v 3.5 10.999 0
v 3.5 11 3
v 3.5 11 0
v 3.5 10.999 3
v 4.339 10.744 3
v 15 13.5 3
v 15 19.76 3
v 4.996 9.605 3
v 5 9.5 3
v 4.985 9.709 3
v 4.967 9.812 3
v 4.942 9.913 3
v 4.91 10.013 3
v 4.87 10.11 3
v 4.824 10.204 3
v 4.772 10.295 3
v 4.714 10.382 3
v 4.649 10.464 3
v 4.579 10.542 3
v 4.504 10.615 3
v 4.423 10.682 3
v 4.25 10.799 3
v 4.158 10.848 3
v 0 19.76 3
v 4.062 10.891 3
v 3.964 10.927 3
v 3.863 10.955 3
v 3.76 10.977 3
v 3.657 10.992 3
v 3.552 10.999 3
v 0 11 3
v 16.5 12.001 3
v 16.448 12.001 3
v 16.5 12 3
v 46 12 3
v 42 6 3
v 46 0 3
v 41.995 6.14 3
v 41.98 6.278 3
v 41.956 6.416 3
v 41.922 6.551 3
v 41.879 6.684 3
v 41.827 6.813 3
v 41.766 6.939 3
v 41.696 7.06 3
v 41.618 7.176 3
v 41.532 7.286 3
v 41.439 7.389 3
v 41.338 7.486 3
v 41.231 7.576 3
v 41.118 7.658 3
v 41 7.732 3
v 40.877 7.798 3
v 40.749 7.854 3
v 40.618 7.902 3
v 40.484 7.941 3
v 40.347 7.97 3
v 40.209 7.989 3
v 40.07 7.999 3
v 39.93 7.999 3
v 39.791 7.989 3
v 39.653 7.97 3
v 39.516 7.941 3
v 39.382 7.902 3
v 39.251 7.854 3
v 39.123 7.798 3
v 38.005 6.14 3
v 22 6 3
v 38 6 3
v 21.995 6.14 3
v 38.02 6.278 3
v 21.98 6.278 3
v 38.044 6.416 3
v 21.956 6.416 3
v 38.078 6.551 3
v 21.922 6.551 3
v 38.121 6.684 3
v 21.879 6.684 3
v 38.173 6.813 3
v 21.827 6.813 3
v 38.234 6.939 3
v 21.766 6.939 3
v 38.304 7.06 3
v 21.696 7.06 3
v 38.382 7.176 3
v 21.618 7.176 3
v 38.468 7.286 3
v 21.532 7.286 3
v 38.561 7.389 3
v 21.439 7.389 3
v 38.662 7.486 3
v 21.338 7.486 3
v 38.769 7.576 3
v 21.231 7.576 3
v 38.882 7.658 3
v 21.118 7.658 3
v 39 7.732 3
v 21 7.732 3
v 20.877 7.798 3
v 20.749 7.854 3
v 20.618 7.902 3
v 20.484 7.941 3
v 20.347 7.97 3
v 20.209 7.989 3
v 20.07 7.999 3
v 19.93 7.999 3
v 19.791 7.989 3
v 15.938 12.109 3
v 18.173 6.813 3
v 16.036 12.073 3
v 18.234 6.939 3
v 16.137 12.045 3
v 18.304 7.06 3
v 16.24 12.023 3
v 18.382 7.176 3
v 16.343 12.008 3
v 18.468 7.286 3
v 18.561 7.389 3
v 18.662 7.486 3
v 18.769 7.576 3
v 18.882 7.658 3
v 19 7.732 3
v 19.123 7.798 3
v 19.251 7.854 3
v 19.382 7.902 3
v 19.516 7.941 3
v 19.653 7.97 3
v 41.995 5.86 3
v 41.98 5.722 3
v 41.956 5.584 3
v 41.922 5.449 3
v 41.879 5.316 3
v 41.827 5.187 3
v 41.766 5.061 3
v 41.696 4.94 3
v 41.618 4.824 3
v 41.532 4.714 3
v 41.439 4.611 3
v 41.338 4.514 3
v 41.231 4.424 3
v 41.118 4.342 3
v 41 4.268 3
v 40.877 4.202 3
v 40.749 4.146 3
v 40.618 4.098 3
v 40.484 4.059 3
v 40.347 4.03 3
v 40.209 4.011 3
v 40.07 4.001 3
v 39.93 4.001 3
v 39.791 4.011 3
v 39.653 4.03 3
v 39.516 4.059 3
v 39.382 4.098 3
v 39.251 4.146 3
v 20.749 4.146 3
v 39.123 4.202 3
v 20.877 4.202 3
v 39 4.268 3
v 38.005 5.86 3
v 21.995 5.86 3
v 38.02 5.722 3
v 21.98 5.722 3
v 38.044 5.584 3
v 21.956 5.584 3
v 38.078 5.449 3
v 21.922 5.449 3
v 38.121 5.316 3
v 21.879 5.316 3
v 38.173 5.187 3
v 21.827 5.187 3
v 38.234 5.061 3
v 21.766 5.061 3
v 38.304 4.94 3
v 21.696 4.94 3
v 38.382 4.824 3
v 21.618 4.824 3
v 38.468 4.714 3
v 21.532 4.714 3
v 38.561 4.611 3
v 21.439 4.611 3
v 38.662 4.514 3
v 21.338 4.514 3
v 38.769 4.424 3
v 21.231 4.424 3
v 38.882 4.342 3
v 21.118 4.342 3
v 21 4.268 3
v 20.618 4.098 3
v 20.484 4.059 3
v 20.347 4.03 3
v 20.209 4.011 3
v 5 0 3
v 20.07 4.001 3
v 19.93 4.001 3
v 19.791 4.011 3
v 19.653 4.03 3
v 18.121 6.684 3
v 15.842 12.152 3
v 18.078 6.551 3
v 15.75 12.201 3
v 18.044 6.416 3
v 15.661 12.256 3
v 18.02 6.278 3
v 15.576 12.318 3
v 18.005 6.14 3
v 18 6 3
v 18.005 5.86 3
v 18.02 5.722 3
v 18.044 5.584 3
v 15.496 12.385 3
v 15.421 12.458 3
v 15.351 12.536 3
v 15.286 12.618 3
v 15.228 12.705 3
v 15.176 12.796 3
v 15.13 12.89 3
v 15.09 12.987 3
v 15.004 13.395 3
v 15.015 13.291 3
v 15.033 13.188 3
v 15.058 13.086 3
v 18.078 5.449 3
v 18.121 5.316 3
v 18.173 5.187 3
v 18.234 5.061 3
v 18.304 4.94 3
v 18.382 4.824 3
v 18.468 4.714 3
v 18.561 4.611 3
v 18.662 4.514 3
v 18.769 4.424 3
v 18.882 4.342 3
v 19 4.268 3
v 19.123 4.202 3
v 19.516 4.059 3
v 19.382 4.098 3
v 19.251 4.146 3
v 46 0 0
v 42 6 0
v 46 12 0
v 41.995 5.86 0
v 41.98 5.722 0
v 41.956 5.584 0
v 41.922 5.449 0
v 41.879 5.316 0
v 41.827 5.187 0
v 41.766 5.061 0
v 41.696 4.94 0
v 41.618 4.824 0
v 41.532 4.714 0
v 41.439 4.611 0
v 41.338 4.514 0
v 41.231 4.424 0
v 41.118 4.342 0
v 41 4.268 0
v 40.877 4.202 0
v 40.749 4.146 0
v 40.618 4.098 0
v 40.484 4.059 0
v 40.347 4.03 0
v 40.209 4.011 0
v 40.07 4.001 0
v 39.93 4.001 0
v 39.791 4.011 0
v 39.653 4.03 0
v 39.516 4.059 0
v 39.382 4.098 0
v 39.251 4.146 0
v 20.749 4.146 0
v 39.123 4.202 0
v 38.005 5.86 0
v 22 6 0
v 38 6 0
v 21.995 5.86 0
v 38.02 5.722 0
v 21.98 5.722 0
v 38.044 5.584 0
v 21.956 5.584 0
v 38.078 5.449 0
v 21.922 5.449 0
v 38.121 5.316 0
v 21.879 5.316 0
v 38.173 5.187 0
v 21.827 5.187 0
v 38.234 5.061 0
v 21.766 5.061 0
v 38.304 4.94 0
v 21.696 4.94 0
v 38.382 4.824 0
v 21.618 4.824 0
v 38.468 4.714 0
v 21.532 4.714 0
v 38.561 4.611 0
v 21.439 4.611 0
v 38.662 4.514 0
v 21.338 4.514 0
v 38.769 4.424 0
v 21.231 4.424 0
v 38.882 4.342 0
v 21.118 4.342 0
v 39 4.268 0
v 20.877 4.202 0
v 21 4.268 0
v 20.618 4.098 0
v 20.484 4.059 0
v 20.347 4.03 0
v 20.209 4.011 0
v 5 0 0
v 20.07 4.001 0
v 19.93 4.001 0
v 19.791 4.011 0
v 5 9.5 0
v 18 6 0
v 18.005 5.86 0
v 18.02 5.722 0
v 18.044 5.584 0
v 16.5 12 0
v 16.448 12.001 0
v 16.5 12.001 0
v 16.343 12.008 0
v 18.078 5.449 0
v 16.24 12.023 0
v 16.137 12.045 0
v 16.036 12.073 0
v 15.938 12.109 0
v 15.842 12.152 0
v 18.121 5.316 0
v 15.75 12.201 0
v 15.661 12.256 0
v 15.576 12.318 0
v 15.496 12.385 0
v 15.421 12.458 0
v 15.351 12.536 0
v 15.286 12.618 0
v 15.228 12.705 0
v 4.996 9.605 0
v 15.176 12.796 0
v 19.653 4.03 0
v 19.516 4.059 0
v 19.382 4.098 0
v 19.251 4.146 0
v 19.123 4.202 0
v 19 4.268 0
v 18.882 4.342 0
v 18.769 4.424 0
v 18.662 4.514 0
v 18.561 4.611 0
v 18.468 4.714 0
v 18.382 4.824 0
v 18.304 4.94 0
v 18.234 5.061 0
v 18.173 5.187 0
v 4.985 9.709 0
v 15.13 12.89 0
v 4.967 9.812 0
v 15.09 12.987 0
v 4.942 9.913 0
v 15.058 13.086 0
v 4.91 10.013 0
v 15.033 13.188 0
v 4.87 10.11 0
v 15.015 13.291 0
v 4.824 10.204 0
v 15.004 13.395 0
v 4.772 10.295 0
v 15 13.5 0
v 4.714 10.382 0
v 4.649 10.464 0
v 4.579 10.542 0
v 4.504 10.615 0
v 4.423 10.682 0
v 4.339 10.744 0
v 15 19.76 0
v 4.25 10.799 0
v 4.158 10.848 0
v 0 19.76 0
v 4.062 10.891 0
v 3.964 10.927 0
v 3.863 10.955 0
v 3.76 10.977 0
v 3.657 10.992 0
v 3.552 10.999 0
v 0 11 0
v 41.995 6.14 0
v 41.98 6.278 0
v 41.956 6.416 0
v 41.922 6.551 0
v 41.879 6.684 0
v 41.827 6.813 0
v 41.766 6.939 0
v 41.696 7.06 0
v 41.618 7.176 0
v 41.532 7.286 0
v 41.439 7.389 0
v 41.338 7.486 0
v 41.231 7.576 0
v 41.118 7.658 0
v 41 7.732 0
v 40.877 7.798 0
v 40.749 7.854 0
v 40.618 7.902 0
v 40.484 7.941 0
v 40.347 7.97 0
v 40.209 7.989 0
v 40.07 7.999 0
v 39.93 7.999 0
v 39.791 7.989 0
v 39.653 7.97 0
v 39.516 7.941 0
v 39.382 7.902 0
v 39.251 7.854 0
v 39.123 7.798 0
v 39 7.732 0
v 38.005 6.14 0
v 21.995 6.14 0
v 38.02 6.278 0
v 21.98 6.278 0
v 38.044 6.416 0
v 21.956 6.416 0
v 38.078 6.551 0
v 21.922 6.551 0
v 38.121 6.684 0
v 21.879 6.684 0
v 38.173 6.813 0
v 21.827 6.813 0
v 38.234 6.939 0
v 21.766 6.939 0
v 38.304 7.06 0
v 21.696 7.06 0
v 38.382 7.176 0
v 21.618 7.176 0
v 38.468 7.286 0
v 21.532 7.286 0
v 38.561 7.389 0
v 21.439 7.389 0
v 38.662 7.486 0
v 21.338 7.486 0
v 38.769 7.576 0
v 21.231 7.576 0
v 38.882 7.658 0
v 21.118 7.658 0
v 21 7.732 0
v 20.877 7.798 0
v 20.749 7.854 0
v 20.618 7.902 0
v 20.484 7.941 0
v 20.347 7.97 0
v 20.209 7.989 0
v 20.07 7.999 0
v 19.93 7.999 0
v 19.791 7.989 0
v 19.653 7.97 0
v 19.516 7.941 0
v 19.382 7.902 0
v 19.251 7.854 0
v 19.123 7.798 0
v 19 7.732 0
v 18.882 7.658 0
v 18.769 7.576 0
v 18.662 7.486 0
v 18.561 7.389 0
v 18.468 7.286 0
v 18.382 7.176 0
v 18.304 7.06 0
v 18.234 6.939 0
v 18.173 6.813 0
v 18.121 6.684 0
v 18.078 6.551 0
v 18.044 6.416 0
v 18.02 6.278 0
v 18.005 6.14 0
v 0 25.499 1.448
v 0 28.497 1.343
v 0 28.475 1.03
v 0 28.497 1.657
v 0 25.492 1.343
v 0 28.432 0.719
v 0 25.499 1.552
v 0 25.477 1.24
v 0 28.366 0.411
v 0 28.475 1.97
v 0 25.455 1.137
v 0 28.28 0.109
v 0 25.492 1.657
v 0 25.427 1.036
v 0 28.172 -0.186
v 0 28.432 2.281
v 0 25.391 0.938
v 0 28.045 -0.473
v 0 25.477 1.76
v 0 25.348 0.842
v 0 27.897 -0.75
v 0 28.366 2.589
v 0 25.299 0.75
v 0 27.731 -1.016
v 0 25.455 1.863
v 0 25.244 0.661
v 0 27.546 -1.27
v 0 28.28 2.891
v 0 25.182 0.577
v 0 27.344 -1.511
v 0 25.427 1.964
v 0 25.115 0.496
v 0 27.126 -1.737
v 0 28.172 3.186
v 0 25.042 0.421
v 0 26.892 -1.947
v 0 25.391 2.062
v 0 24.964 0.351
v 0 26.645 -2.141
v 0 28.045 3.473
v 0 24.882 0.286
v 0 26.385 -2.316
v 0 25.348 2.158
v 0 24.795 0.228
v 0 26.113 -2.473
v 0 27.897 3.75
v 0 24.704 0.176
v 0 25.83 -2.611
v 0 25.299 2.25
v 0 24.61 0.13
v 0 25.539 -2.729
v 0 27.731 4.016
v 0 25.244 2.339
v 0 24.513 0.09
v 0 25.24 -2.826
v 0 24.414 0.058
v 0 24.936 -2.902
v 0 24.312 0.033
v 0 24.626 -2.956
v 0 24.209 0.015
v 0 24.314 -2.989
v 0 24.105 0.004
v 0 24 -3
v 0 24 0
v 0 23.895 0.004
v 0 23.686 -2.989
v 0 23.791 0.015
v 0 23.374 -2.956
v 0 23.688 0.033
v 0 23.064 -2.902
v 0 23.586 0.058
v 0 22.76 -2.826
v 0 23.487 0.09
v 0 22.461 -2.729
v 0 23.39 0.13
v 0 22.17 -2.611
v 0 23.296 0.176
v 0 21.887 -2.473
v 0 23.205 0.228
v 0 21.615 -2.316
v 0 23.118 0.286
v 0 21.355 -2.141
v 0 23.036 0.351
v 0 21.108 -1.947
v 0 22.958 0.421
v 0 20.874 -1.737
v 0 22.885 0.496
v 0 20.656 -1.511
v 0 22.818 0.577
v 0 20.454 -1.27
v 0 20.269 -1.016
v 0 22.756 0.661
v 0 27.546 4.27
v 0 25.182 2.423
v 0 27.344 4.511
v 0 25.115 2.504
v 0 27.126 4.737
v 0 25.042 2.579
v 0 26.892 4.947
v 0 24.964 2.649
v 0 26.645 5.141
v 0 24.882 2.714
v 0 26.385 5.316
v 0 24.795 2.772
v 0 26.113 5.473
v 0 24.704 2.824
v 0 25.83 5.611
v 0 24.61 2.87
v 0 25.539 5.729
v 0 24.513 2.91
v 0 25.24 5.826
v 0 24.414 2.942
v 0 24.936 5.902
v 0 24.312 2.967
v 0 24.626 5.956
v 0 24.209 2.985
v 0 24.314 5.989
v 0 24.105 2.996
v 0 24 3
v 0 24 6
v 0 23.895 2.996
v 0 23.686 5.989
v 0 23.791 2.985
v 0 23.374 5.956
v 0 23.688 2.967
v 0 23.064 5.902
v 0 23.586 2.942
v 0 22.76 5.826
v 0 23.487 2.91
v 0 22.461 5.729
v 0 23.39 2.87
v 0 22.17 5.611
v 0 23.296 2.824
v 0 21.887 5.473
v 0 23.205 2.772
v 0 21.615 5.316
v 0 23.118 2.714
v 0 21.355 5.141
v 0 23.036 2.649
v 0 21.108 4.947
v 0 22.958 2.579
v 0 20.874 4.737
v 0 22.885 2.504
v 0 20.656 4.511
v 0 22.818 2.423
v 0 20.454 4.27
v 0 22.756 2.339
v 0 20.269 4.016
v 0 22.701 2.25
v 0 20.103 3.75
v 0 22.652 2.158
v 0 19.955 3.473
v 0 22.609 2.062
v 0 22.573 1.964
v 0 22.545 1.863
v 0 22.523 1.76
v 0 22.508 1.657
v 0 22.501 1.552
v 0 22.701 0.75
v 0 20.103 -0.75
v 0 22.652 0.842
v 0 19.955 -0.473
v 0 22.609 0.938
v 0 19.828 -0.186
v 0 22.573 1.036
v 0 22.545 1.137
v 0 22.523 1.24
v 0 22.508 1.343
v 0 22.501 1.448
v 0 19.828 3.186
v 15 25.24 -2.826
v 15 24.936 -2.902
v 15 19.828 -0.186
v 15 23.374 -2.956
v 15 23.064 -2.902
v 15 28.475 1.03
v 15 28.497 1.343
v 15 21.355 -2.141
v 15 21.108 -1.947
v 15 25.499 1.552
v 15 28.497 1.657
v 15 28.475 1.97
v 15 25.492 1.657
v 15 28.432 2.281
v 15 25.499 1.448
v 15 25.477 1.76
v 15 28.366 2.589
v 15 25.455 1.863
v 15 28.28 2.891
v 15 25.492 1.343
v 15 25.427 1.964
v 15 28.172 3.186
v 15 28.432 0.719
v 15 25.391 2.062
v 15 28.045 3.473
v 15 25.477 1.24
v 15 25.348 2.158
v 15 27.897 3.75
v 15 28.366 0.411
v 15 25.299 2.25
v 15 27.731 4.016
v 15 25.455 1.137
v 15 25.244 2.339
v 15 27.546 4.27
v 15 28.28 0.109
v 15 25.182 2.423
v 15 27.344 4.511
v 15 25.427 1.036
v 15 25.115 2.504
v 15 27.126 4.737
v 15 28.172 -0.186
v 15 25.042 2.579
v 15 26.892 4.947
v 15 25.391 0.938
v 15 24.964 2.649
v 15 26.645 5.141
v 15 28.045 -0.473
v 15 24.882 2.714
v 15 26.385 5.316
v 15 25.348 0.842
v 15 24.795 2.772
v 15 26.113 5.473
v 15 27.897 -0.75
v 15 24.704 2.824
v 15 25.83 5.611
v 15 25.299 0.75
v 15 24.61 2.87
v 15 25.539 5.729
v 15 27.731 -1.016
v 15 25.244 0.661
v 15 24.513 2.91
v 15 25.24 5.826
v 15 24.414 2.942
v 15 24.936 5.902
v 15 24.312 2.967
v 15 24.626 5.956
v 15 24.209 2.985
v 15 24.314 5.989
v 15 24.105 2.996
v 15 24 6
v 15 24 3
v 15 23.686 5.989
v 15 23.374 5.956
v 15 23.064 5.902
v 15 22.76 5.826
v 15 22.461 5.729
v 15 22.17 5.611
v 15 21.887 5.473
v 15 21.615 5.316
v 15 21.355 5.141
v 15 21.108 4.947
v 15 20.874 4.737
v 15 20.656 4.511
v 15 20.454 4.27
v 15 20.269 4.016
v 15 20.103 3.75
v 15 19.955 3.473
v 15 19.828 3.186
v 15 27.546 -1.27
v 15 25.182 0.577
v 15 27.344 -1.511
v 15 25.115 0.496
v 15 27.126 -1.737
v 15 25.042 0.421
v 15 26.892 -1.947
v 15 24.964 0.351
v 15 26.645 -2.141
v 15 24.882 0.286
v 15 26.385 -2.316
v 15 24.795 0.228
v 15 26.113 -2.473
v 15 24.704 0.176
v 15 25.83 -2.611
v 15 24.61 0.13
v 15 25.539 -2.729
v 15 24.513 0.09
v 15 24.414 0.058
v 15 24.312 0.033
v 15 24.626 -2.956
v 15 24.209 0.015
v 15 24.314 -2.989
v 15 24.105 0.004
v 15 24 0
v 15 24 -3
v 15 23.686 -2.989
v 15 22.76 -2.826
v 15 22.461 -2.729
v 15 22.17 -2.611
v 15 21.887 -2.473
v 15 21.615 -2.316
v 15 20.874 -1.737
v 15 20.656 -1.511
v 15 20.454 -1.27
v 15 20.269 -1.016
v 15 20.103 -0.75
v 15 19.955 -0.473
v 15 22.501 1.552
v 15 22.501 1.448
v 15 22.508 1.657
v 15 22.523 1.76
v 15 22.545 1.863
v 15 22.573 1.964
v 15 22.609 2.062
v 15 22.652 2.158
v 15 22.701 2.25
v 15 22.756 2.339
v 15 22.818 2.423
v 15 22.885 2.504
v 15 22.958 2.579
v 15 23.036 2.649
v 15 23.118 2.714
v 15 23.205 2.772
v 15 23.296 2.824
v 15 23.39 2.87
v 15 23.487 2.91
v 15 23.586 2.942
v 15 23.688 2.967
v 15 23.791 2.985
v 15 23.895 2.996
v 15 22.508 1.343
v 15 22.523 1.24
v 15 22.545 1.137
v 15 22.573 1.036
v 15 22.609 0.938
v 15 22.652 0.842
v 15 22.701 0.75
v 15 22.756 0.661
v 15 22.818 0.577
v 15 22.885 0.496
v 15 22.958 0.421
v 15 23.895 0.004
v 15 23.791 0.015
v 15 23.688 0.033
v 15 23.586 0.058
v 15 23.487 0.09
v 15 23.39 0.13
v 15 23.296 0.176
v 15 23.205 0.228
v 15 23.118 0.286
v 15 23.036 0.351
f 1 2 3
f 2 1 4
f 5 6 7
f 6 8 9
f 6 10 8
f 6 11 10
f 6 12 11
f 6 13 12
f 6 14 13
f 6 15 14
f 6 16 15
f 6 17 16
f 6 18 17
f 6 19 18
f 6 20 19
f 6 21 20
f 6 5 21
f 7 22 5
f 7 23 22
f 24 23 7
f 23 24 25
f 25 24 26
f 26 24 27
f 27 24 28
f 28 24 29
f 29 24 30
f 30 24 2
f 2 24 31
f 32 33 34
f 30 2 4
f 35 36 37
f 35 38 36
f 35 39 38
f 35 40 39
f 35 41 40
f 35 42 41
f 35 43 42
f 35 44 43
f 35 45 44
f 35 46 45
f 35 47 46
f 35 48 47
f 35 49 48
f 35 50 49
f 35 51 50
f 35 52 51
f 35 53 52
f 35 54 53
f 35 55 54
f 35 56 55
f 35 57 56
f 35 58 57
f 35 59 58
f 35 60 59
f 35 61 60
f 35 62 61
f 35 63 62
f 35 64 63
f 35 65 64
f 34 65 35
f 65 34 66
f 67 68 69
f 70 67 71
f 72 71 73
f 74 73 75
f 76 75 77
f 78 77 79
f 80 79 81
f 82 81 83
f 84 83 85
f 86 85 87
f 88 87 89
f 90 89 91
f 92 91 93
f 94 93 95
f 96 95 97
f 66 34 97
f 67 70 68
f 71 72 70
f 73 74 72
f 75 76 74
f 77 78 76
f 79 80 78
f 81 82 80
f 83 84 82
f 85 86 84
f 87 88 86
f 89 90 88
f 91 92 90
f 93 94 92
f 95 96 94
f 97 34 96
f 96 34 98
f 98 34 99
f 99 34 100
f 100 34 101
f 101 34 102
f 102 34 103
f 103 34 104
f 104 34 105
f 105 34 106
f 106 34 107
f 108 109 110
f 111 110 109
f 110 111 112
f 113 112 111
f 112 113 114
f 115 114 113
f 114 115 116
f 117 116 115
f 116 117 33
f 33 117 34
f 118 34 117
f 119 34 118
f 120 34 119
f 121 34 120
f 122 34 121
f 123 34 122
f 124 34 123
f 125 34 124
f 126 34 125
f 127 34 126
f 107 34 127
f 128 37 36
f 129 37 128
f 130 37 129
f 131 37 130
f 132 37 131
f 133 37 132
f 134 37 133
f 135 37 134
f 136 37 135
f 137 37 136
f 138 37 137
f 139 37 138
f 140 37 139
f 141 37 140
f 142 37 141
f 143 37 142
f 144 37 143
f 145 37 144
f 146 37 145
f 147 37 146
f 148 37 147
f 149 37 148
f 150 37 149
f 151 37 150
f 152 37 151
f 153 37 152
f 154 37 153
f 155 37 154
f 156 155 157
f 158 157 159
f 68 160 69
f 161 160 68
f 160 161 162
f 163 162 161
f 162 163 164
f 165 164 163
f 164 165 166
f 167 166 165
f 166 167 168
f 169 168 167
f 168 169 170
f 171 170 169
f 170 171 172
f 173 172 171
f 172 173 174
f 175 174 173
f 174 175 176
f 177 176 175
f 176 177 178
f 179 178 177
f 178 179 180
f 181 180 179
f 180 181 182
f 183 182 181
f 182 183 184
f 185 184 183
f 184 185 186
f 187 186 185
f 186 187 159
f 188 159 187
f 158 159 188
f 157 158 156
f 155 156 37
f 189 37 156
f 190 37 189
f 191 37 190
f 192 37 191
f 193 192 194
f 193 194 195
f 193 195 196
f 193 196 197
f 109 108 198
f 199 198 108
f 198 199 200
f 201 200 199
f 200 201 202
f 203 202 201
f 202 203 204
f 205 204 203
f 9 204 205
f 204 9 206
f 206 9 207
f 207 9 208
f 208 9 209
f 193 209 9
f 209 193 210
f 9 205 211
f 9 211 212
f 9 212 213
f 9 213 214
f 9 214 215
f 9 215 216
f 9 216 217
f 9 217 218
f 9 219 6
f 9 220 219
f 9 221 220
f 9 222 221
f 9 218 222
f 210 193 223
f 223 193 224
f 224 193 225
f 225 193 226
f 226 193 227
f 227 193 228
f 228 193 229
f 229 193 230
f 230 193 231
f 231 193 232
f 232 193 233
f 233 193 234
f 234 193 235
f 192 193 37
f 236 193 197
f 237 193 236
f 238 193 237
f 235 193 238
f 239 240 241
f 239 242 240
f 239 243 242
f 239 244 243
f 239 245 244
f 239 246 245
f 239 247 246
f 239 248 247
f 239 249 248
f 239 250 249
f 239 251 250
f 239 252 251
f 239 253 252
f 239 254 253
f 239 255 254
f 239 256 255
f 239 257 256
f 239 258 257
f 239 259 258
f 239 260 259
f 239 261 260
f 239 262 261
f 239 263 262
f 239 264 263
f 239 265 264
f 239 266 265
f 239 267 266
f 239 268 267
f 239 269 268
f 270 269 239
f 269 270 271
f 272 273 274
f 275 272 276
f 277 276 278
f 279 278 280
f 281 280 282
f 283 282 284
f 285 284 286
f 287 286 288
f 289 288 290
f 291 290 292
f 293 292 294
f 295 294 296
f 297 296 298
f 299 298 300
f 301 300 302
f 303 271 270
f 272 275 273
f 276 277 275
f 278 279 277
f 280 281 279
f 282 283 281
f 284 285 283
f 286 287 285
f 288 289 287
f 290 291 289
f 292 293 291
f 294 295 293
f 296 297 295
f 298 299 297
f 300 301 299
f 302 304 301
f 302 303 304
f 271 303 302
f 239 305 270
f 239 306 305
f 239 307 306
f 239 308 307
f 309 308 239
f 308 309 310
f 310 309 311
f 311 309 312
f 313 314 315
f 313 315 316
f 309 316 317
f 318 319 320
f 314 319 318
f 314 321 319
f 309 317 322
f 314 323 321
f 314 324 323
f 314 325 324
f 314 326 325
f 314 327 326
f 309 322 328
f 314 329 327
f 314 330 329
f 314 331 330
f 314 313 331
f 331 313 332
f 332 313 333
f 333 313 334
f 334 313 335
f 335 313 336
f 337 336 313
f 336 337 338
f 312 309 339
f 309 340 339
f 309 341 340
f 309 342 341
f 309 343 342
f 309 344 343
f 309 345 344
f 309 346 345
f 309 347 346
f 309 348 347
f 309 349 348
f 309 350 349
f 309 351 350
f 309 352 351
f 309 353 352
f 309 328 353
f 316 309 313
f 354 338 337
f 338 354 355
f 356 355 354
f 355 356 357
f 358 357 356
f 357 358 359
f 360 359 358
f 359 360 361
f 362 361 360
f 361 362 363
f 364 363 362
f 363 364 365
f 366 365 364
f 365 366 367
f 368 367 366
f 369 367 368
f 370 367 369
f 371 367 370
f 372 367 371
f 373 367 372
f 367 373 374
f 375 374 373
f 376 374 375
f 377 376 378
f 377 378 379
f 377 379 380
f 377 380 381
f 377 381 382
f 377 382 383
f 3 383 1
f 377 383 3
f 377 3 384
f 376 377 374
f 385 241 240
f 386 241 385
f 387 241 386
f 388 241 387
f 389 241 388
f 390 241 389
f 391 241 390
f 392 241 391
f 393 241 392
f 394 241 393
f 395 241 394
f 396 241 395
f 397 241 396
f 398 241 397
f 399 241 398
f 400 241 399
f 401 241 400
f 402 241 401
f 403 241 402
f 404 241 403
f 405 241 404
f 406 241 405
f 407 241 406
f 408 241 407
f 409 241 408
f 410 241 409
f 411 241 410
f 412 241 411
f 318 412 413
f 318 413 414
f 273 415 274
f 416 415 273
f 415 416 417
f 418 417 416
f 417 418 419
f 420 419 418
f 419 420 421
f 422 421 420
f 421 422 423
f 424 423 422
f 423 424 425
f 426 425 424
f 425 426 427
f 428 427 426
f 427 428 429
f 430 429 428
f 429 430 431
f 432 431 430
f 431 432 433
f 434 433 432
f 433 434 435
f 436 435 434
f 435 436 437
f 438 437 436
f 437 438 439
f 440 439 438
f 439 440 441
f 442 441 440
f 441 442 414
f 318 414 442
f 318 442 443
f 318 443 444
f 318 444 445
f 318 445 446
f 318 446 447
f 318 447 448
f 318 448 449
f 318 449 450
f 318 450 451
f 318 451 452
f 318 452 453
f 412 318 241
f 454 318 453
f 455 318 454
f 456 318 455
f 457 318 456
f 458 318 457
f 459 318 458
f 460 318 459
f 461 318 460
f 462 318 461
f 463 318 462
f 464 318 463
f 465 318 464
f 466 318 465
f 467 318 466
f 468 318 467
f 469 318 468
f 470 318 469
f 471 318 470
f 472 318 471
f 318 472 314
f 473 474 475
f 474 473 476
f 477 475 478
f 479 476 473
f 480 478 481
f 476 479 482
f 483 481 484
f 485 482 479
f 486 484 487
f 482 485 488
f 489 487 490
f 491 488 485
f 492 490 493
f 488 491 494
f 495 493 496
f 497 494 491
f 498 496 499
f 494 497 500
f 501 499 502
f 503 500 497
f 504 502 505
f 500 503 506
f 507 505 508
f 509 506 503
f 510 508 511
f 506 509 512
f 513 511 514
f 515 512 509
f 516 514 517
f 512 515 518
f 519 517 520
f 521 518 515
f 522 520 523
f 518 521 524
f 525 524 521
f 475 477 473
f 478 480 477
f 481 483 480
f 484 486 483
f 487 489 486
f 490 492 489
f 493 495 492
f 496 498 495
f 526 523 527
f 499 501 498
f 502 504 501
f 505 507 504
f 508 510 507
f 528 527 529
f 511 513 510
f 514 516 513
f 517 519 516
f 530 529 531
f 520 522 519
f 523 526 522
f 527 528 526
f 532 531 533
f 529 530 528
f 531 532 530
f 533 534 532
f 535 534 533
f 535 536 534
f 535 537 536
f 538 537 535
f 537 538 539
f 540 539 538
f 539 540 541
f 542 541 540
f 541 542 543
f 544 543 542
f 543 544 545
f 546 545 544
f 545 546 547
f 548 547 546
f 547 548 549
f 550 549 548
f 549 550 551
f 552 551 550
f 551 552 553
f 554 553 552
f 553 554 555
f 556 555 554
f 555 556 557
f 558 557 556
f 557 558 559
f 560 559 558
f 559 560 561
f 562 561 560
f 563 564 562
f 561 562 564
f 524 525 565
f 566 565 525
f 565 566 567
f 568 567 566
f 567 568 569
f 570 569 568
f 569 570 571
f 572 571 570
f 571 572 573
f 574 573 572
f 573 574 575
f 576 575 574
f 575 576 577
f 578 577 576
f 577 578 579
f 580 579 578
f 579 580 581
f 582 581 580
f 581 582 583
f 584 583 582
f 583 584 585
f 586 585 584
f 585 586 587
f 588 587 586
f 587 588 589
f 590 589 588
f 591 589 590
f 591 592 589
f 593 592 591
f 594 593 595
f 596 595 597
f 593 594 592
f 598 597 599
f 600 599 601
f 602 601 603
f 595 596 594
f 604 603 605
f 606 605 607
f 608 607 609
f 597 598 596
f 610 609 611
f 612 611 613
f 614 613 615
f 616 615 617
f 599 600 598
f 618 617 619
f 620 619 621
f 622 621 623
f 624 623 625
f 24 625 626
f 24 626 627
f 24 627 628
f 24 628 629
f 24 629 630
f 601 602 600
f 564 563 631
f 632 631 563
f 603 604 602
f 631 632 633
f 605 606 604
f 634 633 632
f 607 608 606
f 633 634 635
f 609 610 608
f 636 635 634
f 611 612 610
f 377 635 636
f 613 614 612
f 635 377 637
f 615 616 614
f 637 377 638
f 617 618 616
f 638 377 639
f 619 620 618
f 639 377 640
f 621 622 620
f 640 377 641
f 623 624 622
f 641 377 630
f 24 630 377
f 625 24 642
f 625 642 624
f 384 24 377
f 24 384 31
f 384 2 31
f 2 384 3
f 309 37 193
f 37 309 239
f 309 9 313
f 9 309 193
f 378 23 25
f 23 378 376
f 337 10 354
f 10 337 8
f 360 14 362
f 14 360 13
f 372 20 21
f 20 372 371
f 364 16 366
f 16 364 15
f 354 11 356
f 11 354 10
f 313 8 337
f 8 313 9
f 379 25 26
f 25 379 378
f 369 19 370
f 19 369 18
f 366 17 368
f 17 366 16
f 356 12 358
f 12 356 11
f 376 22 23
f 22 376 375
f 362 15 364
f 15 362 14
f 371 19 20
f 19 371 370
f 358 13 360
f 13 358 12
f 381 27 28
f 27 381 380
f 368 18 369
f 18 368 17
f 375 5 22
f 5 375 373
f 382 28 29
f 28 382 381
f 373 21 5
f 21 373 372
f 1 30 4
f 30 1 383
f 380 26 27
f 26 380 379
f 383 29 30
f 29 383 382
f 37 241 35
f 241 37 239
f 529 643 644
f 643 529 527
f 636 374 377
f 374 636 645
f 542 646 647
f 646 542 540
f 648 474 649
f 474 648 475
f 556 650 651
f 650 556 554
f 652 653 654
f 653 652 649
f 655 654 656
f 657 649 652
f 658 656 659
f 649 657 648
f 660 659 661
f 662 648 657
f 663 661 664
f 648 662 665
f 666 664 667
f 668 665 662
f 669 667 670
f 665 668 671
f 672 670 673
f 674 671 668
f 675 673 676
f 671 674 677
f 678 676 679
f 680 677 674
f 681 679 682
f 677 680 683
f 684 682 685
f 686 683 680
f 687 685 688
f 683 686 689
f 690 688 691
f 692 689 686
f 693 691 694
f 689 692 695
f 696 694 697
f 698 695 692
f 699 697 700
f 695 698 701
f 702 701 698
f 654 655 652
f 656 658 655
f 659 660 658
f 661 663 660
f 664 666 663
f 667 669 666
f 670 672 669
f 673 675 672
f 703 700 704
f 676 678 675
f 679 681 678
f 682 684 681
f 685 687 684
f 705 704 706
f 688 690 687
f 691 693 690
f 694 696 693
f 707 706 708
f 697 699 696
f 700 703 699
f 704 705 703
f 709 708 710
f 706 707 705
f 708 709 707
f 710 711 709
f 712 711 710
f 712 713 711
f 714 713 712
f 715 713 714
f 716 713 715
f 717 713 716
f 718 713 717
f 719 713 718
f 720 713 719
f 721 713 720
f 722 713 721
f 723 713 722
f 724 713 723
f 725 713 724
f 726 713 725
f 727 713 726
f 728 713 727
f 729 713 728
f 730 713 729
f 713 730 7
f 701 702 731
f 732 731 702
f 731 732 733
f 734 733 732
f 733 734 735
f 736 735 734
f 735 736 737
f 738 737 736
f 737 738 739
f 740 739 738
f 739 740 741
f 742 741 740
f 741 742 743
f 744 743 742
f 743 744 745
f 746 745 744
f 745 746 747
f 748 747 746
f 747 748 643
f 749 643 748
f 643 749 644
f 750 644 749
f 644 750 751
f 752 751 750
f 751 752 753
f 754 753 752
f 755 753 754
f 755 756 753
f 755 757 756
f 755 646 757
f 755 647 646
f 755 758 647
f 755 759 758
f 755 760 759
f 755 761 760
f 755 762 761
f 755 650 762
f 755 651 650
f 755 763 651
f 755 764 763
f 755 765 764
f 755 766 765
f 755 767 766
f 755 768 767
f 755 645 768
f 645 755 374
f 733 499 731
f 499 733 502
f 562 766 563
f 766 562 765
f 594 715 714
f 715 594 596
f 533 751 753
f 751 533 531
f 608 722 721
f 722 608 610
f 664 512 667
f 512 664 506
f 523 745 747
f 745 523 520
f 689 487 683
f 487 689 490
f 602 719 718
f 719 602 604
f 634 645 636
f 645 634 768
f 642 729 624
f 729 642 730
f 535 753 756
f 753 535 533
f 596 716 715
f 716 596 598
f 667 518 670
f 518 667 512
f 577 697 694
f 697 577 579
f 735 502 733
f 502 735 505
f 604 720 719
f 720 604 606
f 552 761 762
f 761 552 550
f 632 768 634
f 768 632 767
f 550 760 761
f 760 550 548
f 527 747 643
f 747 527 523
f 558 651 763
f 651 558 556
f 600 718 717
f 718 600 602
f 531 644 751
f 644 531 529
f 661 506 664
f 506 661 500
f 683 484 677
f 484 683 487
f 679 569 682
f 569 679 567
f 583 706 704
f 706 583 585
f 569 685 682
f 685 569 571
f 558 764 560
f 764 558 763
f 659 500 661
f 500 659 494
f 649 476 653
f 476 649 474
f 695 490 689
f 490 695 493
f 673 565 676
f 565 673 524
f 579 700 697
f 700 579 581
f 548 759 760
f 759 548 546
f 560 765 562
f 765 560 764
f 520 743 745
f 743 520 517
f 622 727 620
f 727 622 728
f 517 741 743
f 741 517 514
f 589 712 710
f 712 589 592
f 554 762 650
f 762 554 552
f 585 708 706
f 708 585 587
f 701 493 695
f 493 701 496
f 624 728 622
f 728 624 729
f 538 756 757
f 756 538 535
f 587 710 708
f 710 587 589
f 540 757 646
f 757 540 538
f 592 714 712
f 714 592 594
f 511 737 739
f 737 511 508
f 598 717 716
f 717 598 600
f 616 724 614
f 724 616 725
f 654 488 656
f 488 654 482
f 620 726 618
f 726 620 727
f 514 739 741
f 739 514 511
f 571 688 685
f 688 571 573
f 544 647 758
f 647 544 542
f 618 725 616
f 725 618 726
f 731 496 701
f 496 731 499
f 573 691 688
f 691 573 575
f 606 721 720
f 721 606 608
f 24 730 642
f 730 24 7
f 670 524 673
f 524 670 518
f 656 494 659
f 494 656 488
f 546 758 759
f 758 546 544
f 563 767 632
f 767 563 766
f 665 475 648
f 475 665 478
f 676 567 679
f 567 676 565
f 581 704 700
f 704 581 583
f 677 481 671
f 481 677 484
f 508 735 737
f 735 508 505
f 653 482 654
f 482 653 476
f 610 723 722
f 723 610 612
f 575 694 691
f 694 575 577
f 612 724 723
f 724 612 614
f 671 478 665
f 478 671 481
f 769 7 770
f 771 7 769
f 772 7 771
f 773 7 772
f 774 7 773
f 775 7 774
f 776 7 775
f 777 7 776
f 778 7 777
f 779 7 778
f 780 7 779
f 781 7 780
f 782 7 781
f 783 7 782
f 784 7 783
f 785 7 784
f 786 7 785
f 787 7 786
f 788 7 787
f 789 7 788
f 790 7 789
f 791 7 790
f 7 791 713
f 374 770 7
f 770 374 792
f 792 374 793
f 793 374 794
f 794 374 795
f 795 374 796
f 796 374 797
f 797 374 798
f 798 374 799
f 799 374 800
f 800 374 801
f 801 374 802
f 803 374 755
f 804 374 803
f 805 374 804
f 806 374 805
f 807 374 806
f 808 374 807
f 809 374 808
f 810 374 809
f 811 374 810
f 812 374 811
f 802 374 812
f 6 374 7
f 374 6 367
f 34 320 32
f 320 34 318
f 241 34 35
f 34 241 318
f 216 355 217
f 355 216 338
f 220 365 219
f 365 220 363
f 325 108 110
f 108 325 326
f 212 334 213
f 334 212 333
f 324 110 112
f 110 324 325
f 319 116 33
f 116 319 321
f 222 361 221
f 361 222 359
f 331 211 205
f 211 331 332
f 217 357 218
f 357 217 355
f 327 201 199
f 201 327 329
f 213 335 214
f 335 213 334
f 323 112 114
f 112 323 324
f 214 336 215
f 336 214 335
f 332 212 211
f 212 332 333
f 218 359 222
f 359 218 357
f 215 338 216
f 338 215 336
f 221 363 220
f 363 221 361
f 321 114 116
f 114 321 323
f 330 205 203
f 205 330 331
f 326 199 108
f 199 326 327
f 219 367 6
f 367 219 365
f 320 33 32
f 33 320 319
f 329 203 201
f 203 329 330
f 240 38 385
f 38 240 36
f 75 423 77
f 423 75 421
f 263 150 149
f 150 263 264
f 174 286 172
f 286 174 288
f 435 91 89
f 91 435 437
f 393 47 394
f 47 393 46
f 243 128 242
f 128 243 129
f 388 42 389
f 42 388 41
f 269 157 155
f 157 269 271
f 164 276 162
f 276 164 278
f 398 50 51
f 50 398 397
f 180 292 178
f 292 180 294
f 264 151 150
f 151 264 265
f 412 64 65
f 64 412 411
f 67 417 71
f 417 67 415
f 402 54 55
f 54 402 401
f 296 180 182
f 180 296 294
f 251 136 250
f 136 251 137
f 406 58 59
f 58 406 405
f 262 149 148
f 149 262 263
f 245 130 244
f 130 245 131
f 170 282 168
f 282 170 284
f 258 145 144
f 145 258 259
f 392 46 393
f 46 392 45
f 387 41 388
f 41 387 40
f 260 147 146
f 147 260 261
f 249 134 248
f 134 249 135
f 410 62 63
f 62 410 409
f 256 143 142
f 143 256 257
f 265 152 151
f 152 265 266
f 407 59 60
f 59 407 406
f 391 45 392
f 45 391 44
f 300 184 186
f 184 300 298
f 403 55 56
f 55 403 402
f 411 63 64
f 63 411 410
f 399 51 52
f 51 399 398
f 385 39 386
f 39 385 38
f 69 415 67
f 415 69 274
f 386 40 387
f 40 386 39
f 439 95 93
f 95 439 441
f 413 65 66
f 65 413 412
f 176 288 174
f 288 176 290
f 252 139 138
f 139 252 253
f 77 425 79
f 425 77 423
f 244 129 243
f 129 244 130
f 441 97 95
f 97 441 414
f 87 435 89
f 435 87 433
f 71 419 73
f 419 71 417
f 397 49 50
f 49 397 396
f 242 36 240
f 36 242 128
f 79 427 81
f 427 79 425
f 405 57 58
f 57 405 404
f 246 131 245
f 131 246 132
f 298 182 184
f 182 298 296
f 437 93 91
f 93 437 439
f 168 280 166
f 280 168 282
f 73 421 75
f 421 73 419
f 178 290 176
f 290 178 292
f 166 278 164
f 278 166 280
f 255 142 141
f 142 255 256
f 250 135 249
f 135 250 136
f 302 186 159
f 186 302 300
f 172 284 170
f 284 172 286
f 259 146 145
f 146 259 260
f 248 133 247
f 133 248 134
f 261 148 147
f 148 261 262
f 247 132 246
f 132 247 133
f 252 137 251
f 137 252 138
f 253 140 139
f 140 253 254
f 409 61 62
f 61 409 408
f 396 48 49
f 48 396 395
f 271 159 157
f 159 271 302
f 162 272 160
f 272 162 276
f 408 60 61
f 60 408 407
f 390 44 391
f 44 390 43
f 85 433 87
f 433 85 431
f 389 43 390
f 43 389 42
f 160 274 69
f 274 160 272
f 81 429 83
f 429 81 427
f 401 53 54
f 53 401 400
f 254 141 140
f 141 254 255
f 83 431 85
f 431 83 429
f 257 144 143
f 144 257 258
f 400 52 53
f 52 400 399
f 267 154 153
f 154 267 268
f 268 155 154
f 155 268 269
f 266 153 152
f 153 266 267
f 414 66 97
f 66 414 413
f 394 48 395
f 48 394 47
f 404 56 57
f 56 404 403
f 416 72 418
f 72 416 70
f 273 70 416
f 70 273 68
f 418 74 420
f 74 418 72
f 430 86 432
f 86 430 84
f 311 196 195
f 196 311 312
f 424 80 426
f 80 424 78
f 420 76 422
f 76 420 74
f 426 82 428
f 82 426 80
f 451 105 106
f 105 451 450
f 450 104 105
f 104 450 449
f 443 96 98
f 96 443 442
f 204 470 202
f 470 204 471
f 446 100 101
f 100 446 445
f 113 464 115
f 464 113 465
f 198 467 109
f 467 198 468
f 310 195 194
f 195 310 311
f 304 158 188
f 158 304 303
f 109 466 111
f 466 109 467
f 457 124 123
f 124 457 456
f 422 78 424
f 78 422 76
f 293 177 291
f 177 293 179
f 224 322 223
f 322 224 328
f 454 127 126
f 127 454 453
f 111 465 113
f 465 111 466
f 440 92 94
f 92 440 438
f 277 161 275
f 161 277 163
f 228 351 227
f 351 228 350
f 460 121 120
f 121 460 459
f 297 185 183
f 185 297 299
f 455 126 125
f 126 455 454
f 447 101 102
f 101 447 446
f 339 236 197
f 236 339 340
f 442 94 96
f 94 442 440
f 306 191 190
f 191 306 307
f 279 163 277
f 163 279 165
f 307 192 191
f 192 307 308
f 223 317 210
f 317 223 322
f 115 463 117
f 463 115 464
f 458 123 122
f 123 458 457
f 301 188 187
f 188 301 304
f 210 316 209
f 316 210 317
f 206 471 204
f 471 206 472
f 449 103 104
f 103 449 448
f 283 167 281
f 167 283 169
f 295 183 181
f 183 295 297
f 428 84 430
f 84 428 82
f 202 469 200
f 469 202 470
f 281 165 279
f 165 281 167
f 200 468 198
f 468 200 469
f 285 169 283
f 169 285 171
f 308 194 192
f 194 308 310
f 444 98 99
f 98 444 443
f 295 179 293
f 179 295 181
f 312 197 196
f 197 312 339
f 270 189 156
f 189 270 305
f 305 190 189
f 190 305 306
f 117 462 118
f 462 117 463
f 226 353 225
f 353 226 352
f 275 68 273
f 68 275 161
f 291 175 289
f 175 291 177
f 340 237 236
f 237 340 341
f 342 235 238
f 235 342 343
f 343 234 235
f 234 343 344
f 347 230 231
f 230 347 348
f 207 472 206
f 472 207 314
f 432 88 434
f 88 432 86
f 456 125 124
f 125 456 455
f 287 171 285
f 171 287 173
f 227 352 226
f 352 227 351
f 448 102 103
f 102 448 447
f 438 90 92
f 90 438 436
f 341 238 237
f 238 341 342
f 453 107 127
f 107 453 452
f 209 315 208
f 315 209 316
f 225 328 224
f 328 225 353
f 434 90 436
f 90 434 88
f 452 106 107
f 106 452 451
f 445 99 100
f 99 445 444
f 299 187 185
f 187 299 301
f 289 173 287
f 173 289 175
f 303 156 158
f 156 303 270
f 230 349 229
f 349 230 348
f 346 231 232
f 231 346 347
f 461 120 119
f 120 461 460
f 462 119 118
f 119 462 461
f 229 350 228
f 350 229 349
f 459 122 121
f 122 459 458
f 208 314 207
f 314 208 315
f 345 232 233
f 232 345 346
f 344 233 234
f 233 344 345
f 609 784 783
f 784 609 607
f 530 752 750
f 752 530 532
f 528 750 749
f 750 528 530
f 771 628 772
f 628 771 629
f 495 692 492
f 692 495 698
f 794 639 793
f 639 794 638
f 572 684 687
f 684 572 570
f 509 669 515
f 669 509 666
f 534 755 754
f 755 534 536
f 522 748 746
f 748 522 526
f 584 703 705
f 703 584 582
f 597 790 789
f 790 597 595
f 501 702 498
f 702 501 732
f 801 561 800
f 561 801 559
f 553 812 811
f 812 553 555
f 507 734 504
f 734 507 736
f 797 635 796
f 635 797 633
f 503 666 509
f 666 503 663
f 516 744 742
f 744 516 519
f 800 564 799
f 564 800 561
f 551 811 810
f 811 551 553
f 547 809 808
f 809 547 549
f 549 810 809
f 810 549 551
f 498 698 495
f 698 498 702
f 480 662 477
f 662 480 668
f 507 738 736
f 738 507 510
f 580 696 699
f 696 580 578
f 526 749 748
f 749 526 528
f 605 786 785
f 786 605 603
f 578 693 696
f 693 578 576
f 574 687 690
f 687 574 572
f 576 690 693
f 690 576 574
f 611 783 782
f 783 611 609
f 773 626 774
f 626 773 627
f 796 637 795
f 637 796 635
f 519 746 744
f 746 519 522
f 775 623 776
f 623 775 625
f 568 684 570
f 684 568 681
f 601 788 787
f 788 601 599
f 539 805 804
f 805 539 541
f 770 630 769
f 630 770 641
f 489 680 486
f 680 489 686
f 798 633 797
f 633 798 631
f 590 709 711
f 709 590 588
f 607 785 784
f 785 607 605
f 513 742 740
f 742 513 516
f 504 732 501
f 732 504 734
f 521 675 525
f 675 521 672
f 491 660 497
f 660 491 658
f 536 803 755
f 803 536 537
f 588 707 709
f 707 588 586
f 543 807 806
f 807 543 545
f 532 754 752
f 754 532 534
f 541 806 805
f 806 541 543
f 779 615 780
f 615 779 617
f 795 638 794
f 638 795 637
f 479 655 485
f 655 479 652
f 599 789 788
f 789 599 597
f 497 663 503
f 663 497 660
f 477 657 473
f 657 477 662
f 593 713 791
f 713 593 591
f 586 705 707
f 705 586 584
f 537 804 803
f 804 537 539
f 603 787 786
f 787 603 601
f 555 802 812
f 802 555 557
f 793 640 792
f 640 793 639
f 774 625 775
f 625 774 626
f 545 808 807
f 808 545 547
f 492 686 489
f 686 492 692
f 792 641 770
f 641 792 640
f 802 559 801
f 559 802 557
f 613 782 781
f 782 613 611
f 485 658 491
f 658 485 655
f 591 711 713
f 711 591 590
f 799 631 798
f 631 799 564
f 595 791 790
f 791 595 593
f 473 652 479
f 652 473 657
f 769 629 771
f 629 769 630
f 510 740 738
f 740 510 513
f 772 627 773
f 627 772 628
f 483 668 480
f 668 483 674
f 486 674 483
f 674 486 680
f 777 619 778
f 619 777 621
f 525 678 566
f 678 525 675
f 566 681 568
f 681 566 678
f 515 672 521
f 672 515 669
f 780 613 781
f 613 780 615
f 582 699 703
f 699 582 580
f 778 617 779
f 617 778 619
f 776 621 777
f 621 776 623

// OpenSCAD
$fn=90;

difference() {
    
    union() {
        cube( [ 46.0, 24, 3.0 ] );
        translate( [ 0, 24, 3/2 ] ) {
            rotate( [ 0, 90, 0 ] ) {
                cylinder( d = 9, h = 15 );
            }
        }
    }
    
    union() {
        cube( [ 5.0-1.5, 11.0, 3.0 ] );
        cube( [ 5.0, 11.0-1.5, 3.0 ] );
        translate( [ 5.0-1.5, 11.0-1.5, 0 ] ) {
            cylinder( r = 1.5, h = 3.0 );
        }
    }

    translate( [ 15.0, 12.0, 0 ] ) {
        union() {
            translate( [ 0, 1.5, 0 ] ) {
                cube( [ 31.0, 12.0-1.5, 3 ] );
            }
            translate( [ 1.5, 0, 0 ] ) {
                cube( [ 31.0-1.5, 12.0, 3 ] );
            }
            translate( [ 1.5, 1.5, 0 ] ) {
                cylinder( r = 1.5, h = 3.0 );
            }
        }
    }
    
    translate( [ 46.0 - 6.0, 6.0, 0 ] ) {
        cylinder( d = 4.0, h = 3 );
    }
    translate( [ 46.0 - 26.0, 6.0, 0 ] ) {
        cylinder( d = 4.0, h = 3 );
    }
    
#   translate( [ 0, 24, 1.5 ] ) { 
        rotate( [ 0, 90, 0 ] ) {
            cylinder( d = 3, h = 26 );
        }
    }



}
